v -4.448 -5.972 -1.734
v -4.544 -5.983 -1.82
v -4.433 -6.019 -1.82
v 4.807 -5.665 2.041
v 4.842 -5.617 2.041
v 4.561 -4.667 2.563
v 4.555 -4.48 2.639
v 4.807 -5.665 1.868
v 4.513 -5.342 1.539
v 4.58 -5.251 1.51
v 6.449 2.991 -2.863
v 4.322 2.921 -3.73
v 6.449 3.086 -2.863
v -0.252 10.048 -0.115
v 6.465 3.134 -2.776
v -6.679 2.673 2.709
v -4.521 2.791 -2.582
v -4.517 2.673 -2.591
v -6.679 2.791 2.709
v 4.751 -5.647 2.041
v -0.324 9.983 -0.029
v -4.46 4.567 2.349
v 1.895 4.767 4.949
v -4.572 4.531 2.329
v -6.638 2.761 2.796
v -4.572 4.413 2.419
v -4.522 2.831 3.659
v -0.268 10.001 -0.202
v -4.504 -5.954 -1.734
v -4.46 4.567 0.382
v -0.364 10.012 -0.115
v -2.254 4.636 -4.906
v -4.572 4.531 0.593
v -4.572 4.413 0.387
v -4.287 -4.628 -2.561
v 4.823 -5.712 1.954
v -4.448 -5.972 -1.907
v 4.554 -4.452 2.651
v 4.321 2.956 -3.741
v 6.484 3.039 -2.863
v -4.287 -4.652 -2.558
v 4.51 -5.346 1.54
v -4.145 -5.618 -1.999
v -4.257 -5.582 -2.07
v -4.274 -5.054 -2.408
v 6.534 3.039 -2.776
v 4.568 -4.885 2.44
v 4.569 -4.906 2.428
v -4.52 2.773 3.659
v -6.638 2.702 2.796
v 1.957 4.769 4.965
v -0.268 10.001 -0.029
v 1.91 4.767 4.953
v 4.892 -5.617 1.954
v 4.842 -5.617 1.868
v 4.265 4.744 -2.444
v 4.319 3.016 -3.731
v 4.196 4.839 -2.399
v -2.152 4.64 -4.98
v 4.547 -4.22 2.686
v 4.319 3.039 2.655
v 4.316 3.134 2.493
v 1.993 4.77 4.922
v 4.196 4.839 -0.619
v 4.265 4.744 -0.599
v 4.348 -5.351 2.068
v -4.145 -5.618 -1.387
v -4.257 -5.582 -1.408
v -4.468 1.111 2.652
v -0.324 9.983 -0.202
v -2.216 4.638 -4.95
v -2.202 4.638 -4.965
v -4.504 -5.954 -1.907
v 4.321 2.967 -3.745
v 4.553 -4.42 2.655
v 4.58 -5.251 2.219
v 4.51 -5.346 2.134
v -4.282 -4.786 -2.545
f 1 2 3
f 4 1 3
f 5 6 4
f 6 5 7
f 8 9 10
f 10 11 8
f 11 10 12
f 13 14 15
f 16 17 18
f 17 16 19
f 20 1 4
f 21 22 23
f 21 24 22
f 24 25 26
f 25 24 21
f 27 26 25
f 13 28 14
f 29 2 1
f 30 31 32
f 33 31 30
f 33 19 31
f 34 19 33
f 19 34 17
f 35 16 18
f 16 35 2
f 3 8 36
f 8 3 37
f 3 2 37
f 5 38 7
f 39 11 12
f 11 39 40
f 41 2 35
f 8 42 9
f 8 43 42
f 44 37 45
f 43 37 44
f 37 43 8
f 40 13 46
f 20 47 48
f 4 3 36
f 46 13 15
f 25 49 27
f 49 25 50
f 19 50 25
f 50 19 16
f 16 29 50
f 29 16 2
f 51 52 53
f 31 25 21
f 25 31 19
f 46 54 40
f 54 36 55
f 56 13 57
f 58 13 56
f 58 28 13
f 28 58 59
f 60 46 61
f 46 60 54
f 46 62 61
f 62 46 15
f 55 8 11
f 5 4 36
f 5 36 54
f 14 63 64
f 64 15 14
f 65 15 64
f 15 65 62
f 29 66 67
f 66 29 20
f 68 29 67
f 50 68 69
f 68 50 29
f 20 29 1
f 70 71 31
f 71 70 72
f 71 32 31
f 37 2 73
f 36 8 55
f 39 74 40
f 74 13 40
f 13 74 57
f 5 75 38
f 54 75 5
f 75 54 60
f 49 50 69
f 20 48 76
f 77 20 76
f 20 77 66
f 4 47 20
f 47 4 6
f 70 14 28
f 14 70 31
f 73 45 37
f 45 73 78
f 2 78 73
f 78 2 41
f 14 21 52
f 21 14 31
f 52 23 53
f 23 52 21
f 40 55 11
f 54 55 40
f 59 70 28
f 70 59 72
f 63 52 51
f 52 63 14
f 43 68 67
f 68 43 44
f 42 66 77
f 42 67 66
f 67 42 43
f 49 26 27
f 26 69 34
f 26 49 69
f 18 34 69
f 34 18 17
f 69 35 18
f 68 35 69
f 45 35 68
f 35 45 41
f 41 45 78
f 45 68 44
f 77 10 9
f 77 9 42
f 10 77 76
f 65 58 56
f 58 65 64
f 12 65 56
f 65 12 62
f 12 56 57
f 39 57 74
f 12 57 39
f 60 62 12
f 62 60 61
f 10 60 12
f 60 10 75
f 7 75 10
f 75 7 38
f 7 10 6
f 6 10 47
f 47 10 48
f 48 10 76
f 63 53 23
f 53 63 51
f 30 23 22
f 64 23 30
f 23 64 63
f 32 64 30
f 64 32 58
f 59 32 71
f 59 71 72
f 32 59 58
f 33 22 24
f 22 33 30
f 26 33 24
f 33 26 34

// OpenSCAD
// Auto-generated OpenSCAD file

    inner_points = 10*[[0.4479590588990513, -0.5250898206093074, -7.05324687544362e-13], [0.4165075656405067, 0.4744154588023662, 2.0339285811132868e-13], [-0.417637904288353, -0.5523276127577147, -0.5000000000003288], [-0.44908939754689753, 0.44717766665395897, -0.49999999999942013], [-0.41763790428788994, -0.5523276127586092, 0.49999999999967115], [-0.44908939754643434, 0.44717766665306447, 0.5000000000005798], [0.352813311127668, -0.027836294896346484, -0.862372435696011]];

    outer_points = 10*[[0.26573559772755095, 0.3038927930034916, 0.6483572285355131], [-0.6597836115012342, 0.2731852040296694, 0.2709036057844004], [0.6433673075177818, 0.3038927930034916, -0.27759865149382545], [-0.28215190171100324, 0.2731852040296694, -0.6550522742449382], [0.47917590859784487, -0.5617242025462499, 0.1954218570849814], [-0.4463433006309402, -0.5924317915200721, -0.18203176566613136], [-0.028313936102664725, 0.9953123157758751, -0.01154724575106305]];

    // Convex hull for inner set (I)
    module inner_hull() {
        hull() {
            for (p = inner_points) {
                translate(p) sphere(r=0.1);
            }
        }
    }

    // Convex hull for outer set (O) minus inner hull (O \ I)
    module outer_minus_inner() {
        difference() {
            hull() {
                for (p = outer_points) {
                    translate(p) sphere(r=0.1);
                }
            }
            inner_hull(); // Subtract inner hull
        }
    }

    // Convex hull for outer set (O) minus all translated inner hulls
    module outer_minus_AllTranslationInner() {
        difference() {
            hull() {
                for (p = outer_points) {
                    translate(p) sphere(r=0.1);
                }
            }
            hull() {
                translate([0,0,50]) inner_hull();
                translate([0,0,-50]) inner_hull();
            }; // Subtract translated inner hulls
        }
    }

    // Difference between outer_minus_inner and outer_minus_AllTranslationInner
    module outer_minus_inner_diff() {
        difference() {
            // Outer minus inner
            difference() {
                hull() {
                    for (p = outer_points) {
                        translate(p) sphere(r=0.1);
                    }
                }
                inner_hull();
            }

            // Subtract Outer minus AllTranslationInner
            difference() {
                hull() {
                    for (p = outer_points) {
                        translate(p) sphere(r=0.1);
                    }
                }
                hull() {
                    translate([0,0,50]) inner_hull();
                    translate([0,0,-50]) inner_hull();
                };
            }
        }
    }

    // Rendering all with colors applied
    color([0, 1, 0, 1]) outer_minus_AllTranslationInner(); // Opaque green
    
